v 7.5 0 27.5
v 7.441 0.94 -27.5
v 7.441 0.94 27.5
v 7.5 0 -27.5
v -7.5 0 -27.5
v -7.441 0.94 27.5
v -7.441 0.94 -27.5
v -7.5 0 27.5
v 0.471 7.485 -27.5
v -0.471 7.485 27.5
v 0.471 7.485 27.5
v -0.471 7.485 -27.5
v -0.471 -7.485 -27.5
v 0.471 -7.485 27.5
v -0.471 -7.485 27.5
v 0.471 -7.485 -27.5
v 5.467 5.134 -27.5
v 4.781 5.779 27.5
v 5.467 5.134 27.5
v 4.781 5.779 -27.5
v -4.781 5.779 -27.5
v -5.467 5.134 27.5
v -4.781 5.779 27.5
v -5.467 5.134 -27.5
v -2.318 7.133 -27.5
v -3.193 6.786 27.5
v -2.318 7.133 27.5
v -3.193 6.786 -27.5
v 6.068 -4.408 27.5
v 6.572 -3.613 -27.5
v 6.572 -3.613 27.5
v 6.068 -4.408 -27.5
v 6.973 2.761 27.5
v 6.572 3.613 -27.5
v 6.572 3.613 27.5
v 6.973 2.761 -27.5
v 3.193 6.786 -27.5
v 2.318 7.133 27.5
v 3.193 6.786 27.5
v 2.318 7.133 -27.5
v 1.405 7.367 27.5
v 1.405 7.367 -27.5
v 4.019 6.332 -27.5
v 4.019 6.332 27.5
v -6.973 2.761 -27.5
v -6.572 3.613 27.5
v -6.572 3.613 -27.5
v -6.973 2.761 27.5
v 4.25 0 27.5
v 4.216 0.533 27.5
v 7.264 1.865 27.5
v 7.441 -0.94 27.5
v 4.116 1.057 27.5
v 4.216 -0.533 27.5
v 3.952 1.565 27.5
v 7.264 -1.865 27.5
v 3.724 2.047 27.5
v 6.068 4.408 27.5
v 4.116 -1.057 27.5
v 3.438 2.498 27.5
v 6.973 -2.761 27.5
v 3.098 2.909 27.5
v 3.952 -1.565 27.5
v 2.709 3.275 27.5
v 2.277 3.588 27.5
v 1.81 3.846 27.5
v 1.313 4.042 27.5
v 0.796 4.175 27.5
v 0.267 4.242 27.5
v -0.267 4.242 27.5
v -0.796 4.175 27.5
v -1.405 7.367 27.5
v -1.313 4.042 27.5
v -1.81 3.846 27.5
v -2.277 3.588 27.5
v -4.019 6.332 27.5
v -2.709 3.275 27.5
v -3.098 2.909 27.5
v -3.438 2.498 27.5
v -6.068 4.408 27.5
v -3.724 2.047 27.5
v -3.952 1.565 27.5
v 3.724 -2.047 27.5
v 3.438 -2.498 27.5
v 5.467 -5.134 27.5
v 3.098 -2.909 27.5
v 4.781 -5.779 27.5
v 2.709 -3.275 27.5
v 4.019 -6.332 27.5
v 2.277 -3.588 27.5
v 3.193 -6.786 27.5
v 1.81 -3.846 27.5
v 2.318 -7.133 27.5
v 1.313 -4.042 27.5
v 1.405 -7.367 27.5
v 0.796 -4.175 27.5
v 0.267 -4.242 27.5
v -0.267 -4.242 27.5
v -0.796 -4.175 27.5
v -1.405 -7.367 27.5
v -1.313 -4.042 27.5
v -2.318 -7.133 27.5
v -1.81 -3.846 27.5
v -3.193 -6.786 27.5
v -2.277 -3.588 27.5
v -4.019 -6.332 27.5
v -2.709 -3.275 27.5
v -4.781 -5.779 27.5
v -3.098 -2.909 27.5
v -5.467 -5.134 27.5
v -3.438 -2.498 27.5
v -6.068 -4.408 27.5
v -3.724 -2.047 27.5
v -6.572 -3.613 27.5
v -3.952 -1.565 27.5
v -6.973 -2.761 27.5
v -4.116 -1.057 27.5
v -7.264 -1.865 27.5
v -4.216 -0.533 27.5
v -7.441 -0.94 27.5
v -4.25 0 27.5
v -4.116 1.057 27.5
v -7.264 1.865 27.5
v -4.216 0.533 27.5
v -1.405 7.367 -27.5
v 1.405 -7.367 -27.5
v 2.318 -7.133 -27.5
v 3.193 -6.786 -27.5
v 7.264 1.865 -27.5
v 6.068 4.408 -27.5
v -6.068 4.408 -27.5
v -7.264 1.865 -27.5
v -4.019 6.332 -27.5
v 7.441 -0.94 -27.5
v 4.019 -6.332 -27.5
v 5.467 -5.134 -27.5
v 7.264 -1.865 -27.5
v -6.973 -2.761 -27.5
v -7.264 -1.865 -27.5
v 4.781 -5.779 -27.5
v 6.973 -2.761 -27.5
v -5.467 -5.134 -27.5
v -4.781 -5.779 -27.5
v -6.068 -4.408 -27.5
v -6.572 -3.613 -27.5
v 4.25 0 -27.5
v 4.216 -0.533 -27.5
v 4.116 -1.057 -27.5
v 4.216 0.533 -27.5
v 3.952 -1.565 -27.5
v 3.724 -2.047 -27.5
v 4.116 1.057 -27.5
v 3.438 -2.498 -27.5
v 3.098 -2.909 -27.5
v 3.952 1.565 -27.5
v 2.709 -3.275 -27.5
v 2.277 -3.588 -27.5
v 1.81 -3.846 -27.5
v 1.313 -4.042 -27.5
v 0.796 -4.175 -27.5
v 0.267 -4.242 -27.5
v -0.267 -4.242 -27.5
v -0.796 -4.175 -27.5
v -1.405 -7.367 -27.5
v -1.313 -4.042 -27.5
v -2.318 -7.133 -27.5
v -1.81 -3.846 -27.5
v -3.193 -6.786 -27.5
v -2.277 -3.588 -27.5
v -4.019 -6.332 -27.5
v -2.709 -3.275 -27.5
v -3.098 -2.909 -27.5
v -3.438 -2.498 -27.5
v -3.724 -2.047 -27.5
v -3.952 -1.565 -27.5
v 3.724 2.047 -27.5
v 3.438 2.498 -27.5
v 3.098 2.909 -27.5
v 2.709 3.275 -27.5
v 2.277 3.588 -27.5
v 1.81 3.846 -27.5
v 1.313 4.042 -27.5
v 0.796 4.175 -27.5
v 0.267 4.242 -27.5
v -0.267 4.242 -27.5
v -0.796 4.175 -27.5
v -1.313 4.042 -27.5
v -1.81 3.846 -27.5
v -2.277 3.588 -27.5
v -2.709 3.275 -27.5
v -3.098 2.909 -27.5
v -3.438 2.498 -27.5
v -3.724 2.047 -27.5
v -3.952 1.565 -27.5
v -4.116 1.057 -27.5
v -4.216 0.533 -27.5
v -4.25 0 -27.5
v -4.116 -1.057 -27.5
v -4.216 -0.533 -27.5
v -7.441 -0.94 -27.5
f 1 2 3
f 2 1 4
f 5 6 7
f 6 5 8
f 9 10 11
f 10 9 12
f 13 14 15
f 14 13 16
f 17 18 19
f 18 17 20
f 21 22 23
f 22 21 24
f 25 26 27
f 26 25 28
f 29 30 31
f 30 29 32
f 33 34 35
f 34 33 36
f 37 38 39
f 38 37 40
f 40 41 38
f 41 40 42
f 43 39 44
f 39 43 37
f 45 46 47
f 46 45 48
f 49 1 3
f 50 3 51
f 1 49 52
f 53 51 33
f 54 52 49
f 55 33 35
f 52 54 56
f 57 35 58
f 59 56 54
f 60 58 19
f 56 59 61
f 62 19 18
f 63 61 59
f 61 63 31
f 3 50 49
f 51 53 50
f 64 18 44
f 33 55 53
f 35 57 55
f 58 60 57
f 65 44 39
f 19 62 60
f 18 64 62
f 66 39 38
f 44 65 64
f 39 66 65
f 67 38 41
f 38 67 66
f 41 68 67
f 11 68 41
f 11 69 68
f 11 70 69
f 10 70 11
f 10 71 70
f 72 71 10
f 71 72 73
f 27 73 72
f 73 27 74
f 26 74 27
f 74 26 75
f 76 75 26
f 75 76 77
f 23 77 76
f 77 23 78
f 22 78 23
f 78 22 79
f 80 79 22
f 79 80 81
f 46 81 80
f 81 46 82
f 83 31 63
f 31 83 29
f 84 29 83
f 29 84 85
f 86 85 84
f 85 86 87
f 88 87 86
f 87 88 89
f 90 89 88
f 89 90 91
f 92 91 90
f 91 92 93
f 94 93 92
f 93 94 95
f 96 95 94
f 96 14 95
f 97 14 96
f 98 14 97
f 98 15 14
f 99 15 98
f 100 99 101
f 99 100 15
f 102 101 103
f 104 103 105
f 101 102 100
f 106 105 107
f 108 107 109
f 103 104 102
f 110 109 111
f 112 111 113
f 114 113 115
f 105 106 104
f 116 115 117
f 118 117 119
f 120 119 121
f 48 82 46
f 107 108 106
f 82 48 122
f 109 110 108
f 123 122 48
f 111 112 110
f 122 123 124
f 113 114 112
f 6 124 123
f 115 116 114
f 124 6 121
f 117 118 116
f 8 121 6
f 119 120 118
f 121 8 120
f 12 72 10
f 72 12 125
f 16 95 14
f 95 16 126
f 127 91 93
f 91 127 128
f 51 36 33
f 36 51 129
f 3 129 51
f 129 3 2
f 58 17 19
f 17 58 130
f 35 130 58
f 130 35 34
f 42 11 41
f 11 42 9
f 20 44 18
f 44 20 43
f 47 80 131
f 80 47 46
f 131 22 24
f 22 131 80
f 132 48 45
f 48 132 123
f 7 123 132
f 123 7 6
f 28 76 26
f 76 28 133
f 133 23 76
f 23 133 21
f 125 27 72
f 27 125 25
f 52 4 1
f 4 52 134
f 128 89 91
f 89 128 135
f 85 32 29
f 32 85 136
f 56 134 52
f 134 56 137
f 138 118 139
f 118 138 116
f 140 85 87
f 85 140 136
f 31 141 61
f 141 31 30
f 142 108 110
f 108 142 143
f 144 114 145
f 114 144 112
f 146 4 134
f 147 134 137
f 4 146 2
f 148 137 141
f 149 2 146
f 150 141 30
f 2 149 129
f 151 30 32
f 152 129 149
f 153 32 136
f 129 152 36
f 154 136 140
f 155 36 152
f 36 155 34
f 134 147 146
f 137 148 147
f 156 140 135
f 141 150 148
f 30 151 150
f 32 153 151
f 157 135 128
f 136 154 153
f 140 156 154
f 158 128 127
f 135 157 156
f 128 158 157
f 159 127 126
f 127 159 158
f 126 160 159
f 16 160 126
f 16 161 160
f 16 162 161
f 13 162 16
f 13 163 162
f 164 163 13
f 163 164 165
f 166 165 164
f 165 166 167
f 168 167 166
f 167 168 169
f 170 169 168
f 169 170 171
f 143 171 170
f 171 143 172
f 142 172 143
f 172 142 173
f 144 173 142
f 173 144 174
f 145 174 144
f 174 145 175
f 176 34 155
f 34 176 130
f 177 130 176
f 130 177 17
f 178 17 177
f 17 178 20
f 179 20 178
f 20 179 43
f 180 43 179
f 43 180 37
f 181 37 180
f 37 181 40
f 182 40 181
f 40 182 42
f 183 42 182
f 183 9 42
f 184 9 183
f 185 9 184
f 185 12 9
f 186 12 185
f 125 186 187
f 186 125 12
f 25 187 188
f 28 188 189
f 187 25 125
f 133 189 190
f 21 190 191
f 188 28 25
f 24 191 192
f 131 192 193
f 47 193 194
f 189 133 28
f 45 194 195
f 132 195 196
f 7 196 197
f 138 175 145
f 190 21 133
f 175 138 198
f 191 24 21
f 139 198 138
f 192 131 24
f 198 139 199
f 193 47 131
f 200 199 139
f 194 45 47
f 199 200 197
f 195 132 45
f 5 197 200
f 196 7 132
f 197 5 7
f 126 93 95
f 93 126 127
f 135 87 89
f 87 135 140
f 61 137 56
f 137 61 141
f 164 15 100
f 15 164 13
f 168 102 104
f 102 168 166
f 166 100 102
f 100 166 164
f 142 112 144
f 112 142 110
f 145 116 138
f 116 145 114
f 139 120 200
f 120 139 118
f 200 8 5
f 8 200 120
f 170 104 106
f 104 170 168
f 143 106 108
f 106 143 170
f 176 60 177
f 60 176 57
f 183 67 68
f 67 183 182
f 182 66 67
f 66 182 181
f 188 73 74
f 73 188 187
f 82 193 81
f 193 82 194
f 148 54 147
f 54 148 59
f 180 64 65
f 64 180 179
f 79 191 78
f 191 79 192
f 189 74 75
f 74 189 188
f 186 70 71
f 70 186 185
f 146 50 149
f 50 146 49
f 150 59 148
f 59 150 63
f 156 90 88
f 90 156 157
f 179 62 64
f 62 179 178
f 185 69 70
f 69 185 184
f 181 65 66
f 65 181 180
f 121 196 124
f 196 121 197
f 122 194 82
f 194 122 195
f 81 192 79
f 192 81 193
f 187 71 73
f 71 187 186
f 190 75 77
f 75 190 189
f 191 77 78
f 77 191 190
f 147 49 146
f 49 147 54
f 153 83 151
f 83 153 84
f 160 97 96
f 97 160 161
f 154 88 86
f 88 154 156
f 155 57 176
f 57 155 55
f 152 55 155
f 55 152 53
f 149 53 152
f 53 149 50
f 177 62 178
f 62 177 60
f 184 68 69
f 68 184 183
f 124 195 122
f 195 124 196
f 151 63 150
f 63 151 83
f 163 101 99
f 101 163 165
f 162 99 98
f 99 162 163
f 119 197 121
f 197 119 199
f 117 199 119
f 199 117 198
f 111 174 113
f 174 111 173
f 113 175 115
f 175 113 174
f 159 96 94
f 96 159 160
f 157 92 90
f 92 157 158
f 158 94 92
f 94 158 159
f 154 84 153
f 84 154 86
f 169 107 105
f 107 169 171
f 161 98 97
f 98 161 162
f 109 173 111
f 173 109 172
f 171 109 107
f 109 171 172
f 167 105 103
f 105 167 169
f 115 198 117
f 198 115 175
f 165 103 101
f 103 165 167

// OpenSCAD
$fn = 50;


difference() {
	union() {
		translate(v = [0, 0, -27.5000000000]) {
			cylinder(h = 55, r = 7.5000000000);
		}
	}
	union() {
		translate(v = [0, 0, -100.0000000000]) {
			cylinder(h = 200, r = 4.2500000000);
		}
	}
}
